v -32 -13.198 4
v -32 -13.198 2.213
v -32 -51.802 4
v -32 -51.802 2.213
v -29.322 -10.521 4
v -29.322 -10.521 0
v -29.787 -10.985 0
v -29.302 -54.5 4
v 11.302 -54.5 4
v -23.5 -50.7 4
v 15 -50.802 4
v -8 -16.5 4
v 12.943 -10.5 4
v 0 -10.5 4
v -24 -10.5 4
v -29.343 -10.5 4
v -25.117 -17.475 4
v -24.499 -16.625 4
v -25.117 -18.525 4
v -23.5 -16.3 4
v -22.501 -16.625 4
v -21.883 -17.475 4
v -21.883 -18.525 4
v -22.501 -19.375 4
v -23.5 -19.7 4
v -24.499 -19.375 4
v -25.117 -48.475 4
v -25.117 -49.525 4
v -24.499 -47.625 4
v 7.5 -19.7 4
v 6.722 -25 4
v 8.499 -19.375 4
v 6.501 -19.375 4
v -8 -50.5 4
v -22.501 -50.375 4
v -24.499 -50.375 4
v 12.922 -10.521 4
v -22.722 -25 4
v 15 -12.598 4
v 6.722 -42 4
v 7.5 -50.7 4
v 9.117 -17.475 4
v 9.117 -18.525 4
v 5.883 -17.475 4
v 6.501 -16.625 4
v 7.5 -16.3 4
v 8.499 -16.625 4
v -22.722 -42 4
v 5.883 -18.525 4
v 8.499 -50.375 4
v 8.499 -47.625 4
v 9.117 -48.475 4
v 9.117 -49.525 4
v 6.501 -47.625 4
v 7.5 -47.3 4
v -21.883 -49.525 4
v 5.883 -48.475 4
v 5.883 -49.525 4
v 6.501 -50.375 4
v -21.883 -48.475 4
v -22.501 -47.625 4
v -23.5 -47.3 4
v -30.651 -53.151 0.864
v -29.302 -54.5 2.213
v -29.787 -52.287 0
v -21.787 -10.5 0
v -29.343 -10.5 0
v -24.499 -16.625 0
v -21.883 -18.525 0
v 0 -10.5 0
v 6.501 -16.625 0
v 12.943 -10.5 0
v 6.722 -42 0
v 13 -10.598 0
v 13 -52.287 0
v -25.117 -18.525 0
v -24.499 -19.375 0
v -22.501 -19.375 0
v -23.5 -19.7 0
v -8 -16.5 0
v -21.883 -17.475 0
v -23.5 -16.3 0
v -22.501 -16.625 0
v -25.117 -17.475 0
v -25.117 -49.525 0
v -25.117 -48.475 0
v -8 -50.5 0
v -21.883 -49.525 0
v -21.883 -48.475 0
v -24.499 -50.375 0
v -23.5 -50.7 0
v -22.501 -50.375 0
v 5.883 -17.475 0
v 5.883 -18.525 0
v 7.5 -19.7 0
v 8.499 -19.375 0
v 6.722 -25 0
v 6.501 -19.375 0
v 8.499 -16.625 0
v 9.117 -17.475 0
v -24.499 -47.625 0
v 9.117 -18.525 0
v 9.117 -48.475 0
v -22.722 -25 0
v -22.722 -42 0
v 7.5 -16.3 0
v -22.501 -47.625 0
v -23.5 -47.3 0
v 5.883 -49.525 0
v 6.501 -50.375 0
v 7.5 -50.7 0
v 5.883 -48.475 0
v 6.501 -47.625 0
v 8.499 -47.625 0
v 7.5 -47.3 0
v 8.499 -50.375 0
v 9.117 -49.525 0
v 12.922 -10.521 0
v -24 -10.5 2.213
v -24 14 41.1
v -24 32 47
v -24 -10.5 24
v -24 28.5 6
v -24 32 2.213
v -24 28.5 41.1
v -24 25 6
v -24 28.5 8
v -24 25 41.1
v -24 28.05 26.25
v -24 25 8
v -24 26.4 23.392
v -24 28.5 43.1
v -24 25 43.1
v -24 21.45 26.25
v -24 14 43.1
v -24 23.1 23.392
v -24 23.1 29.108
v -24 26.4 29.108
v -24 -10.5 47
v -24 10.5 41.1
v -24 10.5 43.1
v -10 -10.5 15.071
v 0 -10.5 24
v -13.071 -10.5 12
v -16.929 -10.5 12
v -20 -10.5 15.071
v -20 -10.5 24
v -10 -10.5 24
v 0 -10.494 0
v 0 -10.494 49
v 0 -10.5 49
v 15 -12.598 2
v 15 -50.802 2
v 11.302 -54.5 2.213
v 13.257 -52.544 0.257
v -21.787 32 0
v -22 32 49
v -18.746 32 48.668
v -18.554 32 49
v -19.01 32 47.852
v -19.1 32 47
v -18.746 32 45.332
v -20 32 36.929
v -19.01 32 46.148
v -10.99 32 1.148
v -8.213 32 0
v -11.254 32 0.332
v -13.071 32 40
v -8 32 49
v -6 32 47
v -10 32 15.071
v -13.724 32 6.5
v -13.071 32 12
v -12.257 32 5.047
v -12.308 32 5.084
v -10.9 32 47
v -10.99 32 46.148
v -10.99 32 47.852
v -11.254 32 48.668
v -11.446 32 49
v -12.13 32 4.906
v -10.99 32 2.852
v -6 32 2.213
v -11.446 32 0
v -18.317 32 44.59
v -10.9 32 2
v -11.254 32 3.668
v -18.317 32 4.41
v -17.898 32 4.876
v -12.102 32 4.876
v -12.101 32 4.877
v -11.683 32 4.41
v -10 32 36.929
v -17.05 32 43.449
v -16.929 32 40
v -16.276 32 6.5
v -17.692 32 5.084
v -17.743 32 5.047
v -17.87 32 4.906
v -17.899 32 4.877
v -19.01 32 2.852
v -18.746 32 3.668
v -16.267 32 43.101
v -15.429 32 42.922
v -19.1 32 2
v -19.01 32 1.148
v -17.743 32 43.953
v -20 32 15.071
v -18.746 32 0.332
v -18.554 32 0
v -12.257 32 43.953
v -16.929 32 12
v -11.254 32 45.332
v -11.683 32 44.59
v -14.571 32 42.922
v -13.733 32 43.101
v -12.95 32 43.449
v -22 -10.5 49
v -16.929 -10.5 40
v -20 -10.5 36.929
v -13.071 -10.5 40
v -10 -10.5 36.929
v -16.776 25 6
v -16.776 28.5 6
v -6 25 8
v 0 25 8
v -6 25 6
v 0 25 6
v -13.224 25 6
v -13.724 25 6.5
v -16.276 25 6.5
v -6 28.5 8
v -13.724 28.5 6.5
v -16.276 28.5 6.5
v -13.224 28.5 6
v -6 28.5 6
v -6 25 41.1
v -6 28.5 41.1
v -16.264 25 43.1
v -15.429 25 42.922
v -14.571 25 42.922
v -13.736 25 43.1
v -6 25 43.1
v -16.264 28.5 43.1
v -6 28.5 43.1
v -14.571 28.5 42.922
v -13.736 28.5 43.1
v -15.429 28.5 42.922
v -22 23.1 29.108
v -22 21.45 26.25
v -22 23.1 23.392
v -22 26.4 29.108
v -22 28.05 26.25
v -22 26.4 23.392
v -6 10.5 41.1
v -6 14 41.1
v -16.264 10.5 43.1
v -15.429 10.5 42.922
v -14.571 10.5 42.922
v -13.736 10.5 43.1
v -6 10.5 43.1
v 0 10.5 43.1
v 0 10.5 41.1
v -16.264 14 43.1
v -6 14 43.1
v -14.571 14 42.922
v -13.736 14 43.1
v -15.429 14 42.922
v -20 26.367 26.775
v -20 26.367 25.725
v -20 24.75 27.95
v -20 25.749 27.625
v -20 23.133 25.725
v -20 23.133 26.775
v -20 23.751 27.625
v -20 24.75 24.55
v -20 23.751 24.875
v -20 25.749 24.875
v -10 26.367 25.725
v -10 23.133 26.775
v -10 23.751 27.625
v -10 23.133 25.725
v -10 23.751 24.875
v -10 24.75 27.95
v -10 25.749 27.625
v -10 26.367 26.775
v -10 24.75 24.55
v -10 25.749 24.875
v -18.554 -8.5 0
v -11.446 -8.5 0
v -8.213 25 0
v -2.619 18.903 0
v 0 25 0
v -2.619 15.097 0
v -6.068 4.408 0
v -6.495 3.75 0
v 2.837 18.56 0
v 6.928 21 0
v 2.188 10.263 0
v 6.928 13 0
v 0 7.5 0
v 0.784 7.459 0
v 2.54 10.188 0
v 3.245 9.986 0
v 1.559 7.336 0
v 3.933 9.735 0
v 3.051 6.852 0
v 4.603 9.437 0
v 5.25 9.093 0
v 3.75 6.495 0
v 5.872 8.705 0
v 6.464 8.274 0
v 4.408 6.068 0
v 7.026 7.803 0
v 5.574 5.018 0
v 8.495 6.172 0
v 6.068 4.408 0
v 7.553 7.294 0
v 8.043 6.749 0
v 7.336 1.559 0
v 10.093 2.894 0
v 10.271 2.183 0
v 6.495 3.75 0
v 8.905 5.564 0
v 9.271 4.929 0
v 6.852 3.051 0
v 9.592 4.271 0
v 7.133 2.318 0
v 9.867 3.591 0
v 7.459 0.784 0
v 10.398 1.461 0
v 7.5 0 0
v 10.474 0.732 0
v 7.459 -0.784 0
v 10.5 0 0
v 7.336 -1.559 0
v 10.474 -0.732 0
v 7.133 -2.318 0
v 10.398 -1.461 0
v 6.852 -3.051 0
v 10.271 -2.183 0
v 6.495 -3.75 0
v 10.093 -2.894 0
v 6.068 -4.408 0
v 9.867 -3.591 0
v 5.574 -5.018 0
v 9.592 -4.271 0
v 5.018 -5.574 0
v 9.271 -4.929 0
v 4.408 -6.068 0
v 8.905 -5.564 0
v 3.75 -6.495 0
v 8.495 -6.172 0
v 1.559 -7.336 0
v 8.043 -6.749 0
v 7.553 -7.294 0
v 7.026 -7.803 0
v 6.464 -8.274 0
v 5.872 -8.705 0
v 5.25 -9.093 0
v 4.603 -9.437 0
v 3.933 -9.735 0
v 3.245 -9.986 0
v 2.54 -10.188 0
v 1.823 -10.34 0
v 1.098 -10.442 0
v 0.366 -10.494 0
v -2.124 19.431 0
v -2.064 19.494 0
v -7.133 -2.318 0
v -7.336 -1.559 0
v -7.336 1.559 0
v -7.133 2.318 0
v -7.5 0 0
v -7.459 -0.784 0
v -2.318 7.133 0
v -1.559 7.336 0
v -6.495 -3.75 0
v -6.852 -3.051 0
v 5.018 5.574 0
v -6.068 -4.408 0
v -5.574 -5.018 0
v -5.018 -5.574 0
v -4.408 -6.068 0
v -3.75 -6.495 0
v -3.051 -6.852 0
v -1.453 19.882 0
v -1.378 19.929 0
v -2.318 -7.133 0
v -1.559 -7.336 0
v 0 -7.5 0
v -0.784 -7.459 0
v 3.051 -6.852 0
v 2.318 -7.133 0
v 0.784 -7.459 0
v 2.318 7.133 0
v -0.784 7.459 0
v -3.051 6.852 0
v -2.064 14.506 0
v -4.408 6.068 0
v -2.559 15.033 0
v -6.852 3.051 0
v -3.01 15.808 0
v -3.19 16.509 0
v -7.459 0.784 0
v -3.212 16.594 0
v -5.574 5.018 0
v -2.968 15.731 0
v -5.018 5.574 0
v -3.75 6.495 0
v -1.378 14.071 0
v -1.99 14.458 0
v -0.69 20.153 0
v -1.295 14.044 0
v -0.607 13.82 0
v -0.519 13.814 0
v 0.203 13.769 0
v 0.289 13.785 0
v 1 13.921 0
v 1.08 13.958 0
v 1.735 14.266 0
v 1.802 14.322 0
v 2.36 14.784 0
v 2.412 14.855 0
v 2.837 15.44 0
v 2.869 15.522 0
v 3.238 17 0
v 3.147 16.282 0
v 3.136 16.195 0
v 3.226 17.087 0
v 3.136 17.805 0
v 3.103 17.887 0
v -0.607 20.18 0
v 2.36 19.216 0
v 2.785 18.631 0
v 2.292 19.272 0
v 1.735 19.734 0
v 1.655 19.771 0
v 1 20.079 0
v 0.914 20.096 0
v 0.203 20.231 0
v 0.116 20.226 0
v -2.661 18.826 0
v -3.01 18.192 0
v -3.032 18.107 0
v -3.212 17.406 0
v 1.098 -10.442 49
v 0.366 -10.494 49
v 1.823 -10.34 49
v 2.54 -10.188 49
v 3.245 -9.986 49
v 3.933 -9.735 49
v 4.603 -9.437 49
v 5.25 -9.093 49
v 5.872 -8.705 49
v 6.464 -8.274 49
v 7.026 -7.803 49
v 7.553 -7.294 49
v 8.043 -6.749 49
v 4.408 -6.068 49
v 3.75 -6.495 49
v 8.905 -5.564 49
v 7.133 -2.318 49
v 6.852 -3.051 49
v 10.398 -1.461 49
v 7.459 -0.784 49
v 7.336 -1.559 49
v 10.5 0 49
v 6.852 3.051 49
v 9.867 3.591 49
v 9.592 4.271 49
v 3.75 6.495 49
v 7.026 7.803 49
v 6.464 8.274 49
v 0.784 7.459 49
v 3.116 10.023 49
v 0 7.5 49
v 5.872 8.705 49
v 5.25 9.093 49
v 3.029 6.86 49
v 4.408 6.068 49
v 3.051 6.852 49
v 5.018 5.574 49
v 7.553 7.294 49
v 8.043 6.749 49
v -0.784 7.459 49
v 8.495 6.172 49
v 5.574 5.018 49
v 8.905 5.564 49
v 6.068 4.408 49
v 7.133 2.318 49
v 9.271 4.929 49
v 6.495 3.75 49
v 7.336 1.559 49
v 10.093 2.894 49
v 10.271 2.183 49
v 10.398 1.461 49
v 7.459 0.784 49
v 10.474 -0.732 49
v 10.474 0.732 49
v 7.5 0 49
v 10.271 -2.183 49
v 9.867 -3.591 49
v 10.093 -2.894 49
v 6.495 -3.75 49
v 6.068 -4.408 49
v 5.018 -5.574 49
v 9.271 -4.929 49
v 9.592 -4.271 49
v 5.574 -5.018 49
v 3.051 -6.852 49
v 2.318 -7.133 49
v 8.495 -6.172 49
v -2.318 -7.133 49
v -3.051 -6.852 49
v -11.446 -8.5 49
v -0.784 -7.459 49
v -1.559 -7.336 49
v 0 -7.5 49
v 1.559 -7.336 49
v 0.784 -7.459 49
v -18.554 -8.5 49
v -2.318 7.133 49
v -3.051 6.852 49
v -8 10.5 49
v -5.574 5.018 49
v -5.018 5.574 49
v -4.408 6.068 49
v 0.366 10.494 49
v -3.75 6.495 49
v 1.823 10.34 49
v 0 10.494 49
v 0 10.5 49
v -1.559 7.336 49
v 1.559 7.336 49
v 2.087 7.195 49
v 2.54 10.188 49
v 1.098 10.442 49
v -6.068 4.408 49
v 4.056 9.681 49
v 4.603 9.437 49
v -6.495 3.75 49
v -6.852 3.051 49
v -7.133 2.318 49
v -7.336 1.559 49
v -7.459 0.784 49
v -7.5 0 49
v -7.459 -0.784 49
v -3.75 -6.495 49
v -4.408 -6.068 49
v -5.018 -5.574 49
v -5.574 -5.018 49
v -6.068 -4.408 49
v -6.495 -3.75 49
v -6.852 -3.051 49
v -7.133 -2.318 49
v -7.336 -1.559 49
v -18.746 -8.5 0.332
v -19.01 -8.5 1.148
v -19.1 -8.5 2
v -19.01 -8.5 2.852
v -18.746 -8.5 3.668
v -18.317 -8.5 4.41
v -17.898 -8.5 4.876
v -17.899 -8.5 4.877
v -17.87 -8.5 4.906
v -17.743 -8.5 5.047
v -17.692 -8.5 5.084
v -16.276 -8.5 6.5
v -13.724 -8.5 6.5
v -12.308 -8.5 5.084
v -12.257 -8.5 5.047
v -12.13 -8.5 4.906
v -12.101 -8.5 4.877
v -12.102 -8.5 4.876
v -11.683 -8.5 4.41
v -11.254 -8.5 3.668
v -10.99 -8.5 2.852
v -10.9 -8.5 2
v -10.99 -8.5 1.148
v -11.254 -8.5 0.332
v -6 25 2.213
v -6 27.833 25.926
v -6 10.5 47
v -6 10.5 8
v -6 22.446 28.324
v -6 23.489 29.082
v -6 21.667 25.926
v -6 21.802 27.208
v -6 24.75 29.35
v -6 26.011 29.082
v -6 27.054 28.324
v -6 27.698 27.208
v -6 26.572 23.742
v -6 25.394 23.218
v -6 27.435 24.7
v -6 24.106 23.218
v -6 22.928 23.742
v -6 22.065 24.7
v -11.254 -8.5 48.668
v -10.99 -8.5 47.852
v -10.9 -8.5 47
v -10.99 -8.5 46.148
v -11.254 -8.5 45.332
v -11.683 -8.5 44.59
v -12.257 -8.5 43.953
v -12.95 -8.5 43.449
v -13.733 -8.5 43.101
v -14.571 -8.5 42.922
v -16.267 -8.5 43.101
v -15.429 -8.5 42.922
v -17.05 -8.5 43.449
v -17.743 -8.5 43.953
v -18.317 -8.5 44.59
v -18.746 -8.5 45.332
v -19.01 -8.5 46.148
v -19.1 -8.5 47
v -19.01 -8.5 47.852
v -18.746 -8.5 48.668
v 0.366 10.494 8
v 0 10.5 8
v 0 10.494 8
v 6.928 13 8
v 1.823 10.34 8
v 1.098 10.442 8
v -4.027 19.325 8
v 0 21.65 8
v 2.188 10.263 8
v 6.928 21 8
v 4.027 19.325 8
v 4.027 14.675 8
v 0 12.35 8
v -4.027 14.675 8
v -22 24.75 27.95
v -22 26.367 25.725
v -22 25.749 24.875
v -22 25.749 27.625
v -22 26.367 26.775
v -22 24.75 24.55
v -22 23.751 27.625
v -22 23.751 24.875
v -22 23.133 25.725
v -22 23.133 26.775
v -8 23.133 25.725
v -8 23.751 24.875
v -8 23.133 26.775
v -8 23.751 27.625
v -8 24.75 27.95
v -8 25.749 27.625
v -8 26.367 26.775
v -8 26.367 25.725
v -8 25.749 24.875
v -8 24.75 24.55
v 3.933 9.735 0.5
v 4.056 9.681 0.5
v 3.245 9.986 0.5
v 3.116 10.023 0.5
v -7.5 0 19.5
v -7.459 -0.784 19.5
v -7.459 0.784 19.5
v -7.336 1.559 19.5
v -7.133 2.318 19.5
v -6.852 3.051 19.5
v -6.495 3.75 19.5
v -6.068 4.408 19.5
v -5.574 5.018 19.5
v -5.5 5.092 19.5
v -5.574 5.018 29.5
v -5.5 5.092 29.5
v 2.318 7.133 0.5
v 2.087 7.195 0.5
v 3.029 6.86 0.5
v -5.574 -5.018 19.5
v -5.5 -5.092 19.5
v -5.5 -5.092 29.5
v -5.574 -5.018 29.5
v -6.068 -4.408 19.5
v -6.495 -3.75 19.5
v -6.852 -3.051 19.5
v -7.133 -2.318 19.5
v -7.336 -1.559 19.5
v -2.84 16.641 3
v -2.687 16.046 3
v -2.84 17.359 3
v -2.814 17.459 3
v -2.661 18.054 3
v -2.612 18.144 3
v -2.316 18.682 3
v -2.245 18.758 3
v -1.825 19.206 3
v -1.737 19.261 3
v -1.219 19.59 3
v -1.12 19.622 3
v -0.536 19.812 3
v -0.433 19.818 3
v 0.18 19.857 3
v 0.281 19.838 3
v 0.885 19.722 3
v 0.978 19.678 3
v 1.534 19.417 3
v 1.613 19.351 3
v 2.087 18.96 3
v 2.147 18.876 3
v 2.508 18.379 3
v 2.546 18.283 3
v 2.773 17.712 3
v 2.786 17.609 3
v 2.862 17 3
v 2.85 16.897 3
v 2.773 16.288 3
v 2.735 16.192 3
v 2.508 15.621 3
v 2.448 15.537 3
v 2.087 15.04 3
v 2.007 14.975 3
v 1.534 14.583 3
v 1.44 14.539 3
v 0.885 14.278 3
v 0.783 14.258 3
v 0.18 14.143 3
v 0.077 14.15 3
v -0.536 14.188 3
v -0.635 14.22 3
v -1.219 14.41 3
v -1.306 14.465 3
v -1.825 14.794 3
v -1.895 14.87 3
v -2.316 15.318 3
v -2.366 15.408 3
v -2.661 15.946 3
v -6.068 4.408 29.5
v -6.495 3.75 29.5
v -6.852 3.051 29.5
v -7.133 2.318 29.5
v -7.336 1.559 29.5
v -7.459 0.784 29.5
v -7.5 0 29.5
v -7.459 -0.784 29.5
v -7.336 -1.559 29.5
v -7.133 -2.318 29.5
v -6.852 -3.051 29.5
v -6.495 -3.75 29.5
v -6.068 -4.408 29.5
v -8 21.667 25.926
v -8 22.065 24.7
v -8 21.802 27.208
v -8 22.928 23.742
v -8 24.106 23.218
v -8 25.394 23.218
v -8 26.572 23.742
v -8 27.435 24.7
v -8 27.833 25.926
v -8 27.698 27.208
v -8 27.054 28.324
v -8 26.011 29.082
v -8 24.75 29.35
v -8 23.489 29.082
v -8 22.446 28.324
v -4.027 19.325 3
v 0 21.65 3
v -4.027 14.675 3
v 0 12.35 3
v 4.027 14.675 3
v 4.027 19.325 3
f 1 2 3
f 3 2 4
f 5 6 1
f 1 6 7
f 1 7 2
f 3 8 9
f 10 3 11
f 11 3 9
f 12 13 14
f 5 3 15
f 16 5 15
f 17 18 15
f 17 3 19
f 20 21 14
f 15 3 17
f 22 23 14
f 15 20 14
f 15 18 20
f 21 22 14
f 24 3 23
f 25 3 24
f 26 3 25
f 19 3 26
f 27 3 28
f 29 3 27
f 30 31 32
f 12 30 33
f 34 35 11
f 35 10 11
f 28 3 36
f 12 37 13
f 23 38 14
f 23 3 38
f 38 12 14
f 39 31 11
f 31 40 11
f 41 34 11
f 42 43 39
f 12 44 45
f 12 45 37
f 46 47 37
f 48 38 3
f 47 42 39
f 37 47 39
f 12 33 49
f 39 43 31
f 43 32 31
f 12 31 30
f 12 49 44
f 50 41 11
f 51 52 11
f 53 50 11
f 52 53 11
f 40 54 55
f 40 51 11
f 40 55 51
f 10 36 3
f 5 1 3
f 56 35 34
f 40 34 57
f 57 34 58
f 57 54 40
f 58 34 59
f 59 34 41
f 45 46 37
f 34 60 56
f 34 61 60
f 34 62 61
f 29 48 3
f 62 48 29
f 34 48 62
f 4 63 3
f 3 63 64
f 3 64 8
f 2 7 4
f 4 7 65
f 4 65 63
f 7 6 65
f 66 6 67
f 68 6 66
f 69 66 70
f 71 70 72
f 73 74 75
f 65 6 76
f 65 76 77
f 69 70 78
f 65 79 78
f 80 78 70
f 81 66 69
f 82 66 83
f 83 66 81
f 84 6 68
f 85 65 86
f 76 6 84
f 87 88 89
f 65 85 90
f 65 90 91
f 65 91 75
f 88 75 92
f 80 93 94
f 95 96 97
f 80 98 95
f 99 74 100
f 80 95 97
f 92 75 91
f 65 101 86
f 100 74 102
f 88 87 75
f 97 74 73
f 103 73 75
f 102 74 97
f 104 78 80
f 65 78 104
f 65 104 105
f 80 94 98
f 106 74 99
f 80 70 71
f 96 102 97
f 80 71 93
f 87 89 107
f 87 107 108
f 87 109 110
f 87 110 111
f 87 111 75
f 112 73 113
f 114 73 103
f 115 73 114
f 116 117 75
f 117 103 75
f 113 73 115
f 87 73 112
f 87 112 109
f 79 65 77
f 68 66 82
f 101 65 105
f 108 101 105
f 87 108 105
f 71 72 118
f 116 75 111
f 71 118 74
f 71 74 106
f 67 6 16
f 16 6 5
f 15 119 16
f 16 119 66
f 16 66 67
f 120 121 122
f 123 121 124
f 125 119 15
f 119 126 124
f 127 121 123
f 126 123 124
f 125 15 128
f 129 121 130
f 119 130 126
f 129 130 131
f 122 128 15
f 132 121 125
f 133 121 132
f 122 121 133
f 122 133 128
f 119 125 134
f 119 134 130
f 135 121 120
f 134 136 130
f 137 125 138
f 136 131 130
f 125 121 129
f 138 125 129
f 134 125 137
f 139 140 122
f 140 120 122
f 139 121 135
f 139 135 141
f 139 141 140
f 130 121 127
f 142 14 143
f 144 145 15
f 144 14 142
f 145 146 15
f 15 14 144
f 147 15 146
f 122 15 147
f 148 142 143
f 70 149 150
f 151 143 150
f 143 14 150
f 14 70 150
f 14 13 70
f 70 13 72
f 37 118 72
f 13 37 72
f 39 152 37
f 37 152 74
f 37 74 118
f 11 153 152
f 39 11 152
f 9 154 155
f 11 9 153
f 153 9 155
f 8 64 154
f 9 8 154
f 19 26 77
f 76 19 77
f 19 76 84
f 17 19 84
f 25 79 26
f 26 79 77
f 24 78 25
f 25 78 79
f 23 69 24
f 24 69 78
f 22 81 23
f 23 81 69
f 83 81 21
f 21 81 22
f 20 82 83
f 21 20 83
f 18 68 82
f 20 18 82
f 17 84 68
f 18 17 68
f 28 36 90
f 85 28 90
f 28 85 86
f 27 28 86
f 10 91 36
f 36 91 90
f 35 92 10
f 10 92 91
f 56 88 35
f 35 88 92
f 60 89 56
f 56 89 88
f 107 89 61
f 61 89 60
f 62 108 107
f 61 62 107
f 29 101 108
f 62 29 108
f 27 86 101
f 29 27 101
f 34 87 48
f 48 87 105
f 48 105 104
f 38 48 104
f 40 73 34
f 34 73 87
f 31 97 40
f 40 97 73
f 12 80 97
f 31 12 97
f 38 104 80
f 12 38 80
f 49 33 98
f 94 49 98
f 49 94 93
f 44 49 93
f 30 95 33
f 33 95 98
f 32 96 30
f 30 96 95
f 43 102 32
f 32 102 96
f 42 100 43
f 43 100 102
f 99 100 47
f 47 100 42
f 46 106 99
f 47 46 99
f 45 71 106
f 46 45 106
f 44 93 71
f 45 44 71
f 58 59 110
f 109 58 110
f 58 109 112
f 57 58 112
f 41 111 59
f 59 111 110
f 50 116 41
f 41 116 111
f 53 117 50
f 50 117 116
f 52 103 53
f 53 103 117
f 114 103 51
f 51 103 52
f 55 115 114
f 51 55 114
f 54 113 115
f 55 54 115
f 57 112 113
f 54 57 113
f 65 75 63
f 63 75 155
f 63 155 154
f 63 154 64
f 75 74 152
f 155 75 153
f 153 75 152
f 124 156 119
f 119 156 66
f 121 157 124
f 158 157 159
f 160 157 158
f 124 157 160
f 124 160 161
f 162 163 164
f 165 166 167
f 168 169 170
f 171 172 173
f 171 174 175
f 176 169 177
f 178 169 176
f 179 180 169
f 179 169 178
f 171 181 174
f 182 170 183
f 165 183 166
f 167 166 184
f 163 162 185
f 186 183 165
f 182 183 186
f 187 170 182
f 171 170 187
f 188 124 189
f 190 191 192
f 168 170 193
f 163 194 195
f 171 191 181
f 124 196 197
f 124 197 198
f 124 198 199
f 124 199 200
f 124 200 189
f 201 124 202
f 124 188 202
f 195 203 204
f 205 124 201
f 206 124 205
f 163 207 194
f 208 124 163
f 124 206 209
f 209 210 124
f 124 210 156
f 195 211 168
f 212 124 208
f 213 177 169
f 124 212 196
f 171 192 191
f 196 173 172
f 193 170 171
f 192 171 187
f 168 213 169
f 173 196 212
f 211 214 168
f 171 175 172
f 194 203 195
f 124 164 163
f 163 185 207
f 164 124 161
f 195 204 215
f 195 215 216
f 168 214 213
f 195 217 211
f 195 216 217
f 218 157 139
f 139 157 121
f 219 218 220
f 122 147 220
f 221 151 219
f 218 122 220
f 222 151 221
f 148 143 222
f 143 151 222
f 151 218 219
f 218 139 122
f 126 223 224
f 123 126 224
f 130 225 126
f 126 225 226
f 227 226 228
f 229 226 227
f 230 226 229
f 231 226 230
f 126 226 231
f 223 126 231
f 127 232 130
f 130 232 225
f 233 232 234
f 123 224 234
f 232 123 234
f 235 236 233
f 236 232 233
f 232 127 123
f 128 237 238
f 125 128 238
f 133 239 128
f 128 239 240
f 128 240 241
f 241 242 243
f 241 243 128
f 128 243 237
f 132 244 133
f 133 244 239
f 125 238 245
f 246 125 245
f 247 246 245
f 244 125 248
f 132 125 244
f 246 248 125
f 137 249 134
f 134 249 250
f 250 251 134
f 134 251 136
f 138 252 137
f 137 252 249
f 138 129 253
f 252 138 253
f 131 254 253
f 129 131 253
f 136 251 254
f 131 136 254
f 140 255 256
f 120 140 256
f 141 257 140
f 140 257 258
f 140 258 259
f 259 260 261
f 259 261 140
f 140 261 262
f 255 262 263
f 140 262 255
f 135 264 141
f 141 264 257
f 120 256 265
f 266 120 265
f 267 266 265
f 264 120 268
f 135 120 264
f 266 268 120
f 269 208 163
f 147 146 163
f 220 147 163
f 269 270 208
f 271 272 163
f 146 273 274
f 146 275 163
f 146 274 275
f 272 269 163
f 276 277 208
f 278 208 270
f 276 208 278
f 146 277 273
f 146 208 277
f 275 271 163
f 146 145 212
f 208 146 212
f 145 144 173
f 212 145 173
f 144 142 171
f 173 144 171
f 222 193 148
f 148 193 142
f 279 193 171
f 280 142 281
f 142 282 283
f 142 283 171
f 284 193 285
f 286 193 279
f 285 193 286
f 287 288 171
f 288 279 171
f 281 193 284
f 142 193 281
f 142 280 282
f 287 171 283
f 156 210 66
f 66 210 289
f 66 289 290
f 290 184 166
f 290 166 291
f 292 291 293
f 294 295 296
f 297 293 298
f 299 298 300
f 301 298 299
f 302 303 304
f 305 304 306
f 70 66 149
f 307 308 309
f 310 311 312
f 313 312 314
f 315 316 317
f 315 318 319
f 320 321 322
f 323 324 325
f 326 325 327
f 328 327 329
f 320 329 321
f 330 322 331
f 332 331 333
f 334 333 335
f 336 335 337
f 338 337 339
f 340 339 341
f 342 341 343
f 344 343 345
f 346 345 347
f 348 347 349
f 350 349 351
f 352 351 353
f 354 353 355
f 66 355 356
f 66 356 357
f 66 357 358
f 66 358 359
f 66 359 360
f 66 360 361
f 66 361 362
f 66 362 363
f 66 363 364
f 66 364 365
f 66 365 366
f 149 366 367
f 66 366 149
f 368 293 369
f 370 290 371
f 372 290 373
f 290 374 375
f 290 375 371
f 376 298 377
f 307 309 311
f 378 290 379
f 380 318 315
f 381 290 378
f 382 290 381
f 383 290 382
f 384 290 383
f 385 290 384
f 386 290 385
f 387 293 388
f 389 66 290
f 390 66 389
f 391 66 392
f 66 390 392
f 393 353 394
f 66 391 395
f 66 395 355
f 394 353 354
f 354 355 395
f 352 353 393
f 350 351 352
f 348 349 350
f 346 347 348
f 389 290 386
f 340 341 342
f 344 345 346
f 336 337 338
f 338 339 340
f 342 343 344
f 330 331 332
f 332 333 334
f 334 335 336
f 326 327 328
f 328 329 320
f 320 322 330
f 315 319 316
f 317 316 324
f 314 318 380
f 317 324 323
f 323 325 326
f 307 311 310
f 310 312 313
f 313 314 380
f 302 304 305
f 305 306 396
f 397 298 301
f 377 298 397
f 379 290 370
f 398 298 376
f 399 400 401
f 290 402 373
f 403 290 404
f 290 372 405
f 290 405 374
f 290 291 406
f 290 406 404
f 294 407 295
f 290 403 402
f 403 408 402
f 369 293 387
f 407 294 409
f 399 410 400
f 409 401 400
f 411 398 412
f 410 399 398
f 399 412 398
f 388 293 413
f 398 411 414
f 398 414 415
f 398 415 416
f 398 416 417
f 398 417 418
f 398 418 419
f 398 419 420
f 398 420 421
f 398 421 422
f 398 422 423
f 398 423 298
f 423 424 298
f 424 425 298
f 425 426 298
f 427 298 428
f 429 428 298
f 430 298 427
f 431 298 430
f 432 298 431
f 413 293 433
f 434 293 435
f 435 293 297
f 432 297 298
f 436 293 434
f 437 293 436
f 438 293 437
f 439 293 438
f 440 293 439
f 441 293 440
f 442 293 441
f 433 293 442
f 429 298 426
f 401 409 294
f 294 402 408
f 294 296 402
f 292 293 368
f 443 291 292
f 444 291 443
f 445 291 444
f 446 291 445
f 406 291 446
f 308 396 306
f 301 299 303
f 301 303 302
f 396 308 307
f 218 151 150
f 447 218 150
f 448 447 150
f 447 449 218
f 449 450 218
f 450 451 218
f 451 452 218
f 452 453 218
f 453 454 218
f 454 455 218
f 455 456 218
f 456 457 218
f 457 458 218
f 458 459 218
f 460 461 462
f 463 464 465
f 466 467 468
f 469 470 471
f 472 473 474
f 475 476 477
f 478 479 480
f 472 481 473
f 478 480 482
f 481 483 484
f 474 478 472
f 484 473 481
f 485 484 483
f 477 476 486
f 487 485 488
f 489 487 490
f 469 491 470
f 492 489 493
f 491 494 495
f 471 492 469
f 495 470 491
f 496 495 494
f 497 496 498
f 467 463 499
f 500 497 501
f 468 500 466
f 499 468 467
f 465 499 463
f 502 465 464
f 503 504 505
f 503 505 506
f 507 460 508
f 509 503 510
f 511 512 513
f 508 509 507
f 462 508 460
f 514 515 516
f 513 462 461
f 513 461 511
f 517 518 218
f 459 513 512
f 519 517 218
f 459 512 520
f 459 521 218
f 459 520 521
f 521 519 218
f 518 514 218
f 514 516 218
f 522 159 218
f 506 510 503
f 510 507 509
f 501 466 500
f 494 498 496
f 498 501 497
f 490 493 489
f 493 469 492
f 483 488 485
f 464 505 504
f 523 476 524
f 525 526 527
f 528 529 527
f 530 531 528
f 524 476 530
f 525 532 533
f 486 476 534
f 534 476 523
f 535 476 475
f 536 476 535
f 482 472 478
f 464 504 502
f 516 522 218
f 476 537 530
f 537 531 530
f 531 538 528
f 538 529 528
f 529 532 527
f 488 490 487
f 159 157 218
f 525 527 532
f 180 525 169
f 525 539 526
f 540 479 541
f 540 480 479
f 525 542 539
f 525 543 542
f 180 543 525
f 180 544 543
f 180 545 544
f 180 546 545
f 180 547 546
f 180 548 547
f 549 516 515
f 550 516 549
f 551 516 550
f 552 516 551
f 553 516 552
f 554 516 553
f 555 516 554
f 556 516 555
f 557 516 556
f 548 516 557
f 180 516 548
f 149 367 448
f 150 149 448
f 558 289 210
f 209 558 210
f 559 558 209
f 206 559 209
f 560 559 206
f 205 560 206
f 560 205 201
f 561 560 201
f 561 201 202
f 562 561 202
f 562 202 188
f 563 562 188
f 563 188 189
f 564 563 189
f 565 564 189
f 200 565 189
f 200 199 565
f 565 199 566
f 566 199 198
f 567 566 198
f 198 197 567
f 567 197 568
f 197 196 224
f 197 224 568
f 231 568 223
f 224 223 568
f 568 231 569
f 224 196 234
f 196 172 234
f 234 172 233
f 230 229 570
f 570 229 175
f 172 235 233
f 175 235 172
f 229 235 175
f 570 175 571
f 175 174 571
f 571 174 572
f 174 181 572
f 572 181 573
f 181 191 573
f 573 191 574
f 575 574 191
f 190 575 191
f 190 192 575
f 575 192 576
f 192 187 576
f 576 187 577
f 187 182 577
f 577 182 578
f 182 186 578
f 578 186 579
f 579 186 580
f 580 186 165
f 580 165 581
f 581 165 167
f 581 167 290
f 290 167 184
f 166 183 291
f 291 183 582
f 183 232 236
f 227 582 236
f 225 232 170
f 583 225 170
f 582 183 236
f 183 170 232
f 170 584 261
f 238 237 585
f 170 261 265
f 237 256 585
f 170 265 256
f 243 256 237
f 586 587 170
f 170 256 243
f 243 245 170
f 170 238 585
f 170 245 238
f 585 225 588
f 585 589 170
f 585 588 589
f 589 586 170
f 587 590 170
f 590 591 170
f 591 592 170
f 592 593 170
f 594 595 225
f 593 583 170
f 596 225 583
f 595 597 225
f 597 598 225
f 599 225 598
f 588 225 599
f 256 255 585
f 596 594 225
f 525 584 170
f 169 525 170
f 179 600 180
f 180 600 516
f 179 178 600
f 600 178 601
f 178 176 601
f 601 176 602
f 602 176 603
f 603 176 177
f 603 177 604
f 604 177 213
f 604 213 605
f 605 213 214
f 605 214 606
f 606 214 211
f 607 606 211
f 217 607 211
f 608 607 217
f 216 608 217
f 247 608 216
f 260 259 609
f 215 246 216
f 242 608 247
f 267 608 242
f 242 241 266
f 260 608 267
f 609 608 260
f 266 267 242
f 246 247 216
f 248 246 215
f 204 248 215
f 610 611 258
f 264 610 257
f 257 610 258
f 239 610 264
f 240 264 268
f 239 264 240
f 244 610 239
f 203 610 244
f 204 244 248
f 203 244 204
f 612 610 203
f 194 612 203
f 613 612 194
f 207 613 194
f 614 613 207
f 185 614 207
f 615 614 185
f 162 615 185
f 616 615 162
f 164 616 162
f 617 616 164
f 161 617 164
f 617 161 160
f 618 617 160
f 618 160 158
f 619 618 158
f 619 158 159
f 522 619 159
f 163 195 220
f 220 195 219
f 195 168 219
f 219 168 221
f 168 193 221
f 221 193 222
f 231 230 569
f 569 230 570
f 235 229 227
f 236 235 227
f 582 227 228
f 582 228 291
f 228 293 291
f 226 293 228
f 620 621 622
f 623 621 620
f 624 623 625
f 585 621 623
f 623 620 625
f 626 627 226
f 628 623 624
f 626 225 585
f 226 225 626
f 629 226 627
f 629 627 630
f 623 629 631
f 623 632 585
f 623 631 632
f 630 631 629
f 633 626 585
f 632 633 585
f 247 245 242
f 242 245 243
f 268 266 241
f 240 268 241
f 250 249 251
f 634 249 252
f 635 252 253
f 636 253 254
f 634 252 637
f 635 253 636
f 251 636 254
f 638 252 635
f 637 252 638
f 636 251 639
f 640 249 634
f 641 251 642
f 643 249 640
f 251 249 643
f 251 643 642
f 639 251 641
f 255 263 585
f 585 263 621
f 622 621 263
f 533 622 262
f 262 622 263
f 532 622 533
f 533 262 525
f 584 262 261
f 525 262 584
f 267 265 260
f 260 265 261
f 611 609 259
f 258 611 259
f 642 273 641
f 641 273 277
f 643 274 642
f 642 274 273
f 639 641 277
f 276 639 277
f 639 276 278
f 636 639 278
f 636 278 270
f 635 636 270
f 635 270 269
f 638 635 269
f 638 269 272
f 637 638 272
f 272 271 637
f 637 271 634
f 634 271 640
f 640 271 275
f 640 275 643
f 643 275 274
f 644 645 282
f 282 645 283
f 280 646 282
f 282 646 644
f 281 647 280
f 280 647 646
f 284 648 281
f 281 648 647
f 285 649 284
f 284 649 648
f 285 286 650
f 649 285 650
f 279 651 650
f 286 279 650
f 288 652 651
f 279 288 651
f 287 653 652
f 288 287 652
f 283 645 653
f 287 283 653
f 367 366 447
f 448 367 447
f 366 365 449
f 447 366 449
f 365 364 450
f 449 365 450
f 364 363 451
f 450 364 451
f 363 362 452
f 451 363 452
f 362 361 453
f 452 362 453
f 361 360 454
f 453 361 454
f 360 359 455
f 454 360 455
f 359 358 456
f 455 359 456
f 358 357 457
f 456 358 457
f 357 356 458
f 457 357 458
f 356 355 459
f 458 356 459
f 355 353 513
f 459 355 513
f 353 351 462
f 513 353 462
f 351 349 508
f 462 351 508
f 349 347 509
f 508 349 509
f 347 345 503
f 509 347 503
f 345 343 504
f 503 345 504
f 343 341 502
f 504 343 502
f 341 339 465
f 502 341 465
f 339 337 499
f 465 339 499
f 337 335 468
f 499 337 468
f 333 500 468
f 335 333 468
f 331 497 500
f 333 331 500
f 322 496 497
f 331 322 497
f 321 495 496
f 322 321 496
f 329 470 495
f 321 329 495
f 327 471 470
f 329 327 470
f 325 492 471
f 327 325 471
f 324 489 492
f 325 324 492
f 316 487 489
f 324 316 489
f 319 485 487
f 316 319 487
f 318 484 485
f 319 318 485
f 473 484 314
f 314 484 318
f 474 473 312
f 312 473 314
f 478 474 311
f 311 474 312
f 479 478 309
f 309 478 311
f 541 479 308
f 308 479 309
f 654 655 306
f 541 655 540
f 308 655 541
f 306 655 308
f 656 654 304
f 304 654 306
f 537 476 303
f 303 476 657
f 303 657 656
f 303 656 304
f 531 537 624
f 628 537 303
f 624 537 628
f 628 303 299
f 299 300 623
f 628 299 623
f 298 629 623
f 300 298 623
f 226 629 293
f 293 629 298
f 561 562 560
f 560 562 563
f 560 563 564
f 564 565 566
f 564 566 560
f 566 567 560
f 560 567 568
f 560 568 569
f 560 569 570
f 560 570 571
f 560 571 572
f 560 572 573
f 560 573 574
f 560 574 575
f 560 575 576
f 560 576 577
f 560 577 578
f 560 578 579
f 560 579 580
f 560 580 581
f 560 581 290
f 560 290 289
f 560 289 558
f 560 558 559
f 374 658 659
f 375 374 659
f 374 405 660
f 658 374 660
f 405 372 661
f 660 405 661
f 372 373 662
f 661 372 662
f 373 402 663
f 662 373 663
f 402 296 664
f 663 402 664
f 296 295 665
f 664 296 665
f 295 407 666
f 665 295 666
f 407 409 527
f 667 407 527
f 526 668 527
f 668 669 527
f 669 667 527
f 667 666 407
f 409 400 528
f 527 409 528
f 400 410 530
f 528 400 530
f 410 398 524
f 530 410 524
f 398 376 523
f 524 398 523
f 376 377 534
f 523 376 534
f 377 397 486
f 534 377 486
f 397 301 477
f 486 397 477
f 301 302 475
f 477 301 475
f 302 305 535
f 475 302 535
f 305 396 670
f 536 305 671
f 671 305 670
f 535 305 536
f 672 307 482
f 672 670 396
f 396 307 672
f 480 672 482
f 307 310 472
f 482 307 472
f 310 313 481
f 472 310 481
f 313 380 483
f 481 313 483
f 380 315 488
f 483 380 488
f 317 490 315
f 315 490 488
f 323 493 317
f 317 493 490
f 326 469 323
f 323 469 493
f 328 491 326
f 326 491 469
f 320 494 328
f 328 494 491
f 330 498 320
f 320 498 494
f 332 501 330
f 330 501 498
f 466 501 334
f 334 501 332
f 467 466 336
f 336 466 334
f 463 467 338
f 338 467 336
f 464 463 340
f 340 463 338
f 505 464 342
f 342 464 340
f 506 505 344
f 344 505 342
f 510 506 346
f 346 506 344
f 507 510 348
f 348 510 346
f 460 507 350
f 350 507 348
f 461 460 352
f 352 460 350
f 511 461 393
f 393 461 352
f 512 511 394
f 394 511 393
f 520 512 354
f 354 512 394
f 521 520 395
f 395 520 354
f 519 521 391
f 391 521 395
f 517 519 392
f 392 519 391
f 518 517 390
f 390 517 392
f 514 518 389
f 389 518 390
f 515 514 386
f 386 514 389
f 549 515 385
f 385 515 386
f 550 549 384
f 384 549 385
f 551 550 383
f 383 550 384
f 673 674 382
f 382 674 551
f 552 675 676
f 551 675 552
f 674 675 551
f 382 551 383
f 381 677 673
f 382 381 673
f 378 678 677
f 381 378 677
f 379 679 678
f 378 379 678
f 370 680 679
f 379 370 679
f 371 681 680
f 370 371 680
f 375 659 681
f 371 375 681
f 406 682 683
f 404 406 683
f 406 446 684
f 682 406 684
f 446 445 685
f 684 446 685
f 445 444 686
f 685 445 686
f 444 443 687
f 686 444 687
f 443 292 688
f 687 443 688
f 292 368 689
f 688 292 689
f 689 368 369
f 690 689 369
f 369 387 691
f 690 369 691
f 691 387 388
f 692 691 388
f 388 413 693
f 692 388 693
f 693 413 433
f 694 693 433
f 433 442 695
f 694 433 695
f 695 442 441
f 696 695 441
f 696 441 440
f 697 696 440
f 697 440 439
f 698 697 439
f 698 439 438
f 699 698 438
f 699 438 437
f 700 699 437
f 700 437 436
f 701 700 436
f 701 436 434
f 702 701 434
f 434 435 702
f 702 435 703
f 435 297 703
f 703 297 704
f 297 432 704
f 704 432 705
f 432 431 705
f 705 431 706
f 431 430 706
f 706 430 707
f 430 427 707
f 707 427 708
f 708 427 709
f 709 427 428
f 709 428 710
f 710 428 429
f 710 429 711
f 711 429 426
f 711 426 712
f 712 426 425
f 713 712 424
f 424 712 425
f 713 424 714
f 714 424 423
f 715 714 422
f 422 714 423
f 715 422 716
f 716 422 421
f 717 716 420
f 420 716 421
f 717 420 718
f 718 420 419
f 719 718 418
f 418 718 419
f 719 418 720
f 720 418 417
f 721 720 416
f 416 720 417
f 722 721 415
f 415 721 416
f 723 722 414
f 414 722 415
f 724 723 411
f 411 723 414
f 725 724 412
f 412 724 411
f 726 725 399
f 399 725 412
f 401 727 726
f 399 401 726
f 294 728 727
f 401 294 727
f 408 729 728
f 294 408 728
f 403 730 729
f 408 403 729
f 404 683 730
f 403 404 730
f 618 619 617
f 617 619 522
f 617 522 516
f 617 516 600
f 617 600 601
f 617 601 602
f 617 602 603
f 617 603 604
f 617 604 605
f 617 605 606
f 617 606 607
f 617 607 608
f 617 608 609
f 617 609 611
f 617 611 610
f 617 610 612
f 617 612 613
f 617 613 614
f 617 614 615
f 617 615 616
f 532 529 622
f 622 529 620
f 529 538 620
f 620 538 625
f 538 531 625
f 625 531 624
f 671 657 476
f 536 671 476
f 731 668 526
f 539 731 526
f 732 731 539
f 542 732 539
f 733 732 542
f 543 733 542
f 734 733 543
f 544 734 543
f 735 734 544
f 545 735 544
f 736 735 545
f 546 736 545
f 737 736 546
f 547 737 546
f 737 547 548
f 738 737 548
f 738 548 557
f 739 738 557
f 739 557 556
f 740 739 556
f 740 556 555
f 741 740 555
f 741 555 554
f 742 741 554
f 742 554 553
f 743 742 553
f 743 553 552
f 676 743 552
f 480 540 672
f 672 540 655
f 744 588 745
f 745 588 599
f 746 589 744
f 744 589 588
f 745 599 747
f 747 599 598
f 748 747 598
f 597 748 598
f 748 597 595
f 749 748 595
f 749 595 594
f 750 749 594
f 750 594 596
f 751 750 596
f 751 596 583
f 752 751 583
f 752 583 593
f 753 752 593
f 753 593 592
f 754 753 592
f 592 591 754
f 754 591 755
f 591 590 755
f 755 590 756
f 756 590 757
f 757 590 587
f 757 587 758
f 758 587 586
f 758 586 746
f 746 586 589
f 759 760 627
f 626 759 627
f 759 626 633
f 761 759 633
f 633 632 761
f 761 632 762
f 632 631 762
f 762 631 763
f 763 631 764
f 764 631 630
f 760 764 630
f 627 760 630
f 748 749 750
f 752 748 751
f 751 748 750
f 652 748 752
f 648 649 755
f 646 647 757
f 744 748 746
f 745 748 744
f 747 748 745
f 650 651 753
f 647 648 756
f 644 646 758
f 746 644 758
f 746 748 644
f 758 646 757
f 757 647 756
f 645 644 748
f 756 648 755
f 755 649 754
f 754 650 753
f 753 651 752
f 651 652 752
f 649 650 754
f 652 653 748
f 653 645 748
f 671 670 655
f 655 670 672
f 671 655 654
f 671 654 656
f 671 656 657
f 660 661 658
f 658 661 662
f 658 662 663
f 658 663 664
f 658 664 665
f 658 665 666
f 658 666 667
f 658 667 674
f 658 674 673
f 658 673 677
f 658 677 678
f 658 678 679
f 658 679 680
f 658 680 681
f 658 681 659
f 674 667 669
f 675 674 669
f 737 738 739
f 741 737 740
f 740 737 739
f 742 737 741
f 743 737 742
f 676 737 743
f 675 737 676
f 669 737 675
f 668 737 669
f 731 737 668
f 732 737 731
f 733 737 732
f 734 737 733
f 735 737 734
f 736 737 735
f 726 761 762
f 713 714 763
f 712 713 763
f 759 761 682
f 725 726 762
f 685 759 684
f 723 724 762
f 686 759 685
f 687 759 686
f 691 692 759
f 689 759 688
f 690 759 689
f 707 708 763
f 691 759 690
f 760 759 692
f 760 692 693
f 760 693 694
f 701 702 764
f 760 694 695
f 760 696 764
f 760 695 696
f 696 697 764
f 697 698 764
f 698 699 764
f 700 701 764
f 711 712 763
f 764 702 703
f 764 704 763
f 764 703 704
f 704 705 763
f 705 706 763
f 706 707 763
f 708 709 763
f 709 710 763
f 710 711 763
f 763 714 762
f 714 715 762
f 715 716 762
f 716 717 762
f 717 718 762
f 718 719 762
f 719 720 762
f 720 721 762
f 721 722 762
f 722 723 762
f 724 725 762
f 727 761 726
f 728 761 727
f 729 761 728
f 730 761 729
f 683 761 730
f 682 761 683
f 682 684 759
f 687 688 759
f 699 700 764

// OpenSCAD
// file: inc/bearing.scad
// PRUSA iteration3
// Bearing holders
// GNU GPL v3
// Josef Průša <iam@josefprusa.cz> and contributors
// http://www.reprap.org/wiki/Prusa_Mendel
// http://prusamendel.org

bearing_diameter = 15;

module horizontal_bearing_base(bearings=1) {
  translate(v=[0,0,6]) cube(size = [24,8+bearings*25,12], center = true);
}

module horizontal_bearing_holes(bearings=1) {
  cutter_lenght = 10+bearings*25;
  one_holder_lenght = 8+25;
  holder_lenght = 8+bearings*25;

  // Main bearing cut
  difference() {
    translate(v = [0,0,12]) rotate(a = [90,0,0]) translate(v = [0,0,-cutter_lenght/2]) cylinder(h = cutter_lenght, r = bearing_diameter/2, $fn = 50);
    // Bearing retainers
    translate(v=[0,1-holder_lenght/2,3]) cube(size = [24,6,8], center = true);
    translate(v=[0,-1+holder_lenght/2,3]) cube(size = [24,6,8], center = true);
  }

  // Ziptie cutouts
  ziptie_cut_ofset = 0;

  for (i = [0:bearings-1]) {
    // For easier positioning I move them by half of one
    // bearing holder then add each bearign lenght and then center again
    translate(v = [0,-holder_lenght/2,0]) translate(v = [0,one_holder_lenght/2+i*25,0]) difference(){
      union(){
        translate(v = [0,2-6,12]) rotate(a = [90,0,0]) translate(v = [0,0,0]) cylinder(h = 4, r = 12.5, $fn = 50);
        translate(v = [0,2+6,12]) rotate(a = [90,0,0]) translate(v = [0,0,0]) cylinder(h = 4, r = 12.5, $fn = 50);
      }
      translate(v = [0,10,12]) rotate(a = [90,0,0]) translate(v = [0,0,0]) cylinder(h = 24, r = 10, $fn = 50);
    }
  }
}

module horizontal_bearing_test() {
  difference(){
    horizontal_bearing_base(1);
    horizontal_bearing_holes(1);
  }
  translate(v=[30,0,0]) difference(){
    horizontal_bearing_base(2);
    horizontal_bearing_holes(2);
  }
  translate(v=[60,0,0]) difference(){
    horizontal_bearing_base(3);
    horizontal_bearing_holes(3);
  }
}

thinwall = 3;
bearing_size = bearing_diameter + 2 * thinwall;

module vertical_bearing_base(height) {
  translate(v = [-2-bearing_size/4,0,height/2]) cube(size = [4+bearing_size/2,bearing_size,height], center = true);
  cylinder(h = height, r=bearing_size/2, $fn = 90);
}

module vertical_bearing_holes(height) {
  difference() {
    translate(v = [0,0,-1]) cylinder(h = height+2, r = bearing_diameter/2, $fn = 60);
    translate(v = [-bearing_diameter/2,0,height/2]) cube([4,bearing_diameter+2,10], center = true);
  }
  rotate(a = [0,0,-70]) translate(v = [8,0,31.5]) cube(size = [5,1,62], center = true);
}

difference() {
  vertical_bearing_base(58);
  vertical_bearing_holes(58);
}
// file: inc/x-end.scad
// PRUSA iteration3
// X end prototype
// GNU GPL v3
// Josef Průša <iam@josefprusa.cz> and contributors
// http://www.reprap.org/wiki/Prusa_Mendel
// http://prusamendel.org

use <bearing.scad>
rod_distance = 45;
m5_tolerance = 0.3;

module x_end_base() {
  // Main block
  height = 49;

  difference() {
    translate(v = [-15,-9-3.5/2,height/2]) cube(size = [18,39+3.5,height], center = true);
    // Top corners cutouts
    translate([-15+7,-20,51-2]) rotate([0,45,0]) translate([-15,-15,0]) cube([30,60,30]);
    translate([-15-18+11,-20,51-2]) rotate([0,-45,0]) translate([-15,-15,0]) cube([30,60,30]);
    // Bottom corners cutout
    translate([-15+7,-20,-19-2]) rotate([0,45,0]) translate([-15,-15,0]) cube([30,60,30]);
    translate([-15-18+11,-20,-19-2]) rotate([0,-45,0]) translate([-15,-15,0]) cube([30,60,30]);
  }

  // Bearing holder
  vertical_bearing_base(49);

  // Nut trap
  // Cube
  translate(v = [-2-2-1,-17,4]) cube(size = [8+2,16,8], center = true);
  // Hexagon
  translate(v = [0,-17,0]) rotate([0,0,30]) cylinder(h = 8, r = 8, $fn = 6);
}

module x_end_holes() {
  vertical_bearing_holes(49);

  // Belt hole
  translate(v = [-1,0,-4])

  difference() {
    translate(v = [-5.5-10+1.5,-10,30]) cube(size = [10,46,28], center = true);

  	// Nice edges
  	translate(v = [-5.5-10+1.5,-10,30+23]) rotate([0,45,0]) cube(size = [10,46,28], center = true);
  	translate(v = [-5.5-10+1.5,-10,30+23]) rotate([0,-45,0]) cube(size = [10,46,28], center = true);
  	translate(v = [-5.5-10+1.5,-10,30-23]) rotate([0,45,0]) cube(size = [10,46,28], center = true);
  	translate(v = [-5.5-10+1.5,-10,30-23]) rotate([0,-45,0]) cube(size = [10,46,28], center = true);
}

  // Bottom pushfit rod
  translate(v = [-15,-41.5,2]) rotate(a = [-90,0,0]) pushfit_rod(8.2,50);

  // Top pushfit rod
  translate(v = [-15,-41.5,rod_distance+2]) rotate(a = [-90,0,0]) pushfit_rod(8.2,50);

  // Ziptie
  translate([-30,-28.5,6]) cube([30,3.5,2]);
  translate([-30,-28.5,49-6-1.9]) cube([30,3.5,2]);
  translate([-30,-14,49-6-1.9]) cube([30,3.5,2]);

  // Nut trap
  translate(v = [0,-17,-0.5]) cylinder(h = 4, r1 = 3.3, r2 = 2.8, $fn = 25);
  translate(v = [0,-17,3]) rotate([0,0,30]) cylinder(h = 10, r=4.5+m5_tolerance/2, $fn = 6);
}

// Final prototype
module x_end_plain() {
  difference() {
    x_end_base();
    x_end_holes();
  }
}

x_end_plain();

module pushfit_rod(diameter,length) {
  cylinder(h = length, r = diameter/2, $fn = 30);
  difference() {
 	  translate(v = [0,-diameter/2.85,length/2]) rotate([0,0,45]) cube(size = [diameter/2,diameter/2,length], center = true);
 	  translate(v = [0,-diameter/4-diameter/2-0.4,length/2]) rotate([0,0,0]) cube(size = [diameter,diameter/2,length], center = true);
  }
  //translate(v=[0,-diameter/2-2,length/2]) cube(size = [diameter,1,length], center = true);
}
// main file
// PRUSA iteration3
// X end motor
// GNU GPL v3
// Josef Průša <iam@josefprusa.cz> and contributors
// http://www.reprap.org/wiki/Prusa_Mendel
// http://prusamendel.org

use <inc/x-end.scad>

module x_end_motor_base() {
  x_end_base();
	translate([-34,1.5,-6])
   rotate([0,90,0])
    difference() {
    translate(v = [-15,31,26.5-1]) cube(size = [18,44,47], center = true);
    translate([-15+7,0,51-2]) rotate([0,45,0]) translate([-15,-15,0]) cube([30,70,30]);
    translate([-15-18+11,0,51-2]) rotate([0,-45,0]) translate([-15,-15,0]) cube([30,70,30]);
    // Bottom corners cutout
    translate([-15+7,10,-19-0]) rotate([0,45,0]) translate([-15,-15,0]) cube([30,60,30]);
    translate([-15-18+11,10,-19-0]) rotate([0,-45,0]) translate([-15,-15,0]) cube([30,60,30]);
    translate([-15+7,74,10]) rotate([90,0,45]) translate([-15,-15,0]) cube([30,70,30]);
  }
}

module x_end_motor_holes() {
  x_end_holes();

  // Position to place
	translate([-34,1.5,-6])
  rotate([0,90,0])
    translate(v = [-1,32,30.25-4.25]) {
    // Belt hole
    translate(v = [-14,1,0]) cube(size = [10,46,22], center = true);
	mirror([0,0,1])
	{
    // Motor mounting holes
    translate(v = [20,-15.5,-15.5]) rotate(a = [0,-90,0]) rotate(a = [0,0,90]) cylinder(h = 70, r = 1.7, $fn = 10);
    //translate(v = [3,-15.5,-15.5]) rotate(a = [0,-90,0]) rotate(a = [0,0,90]) cylinder(h = 10, r = 3.1, $fn = 15);

    translate(v = [20,-15.5,15.5]) rotate(a = [0,-90,0]) rotate(a = [0,0,90]) cylinder(h = 70, r = 1.7, $fn = 10);
    //translate(v = [3,-15.5,15.5]) rotate(a = [0,-90,0]) rotate(a = [0,0,90]) cylinder(h = 10, r = 3.1, $fn = 15);
	
    translate(v = [20,15.5,-15.5]) rotate(a = [0,-90,0]) rotate(a = [0,0,90]) cylinder(h = 70, r = 1.7, $fn = 10);
    //translate(v = [3-10,15.5,-15.5]) rotate(a = [0,-90,0]) rotate(a = [0,0,90]) cylinder(h = 10, r = 3.1, $fn = 15);
    //translate(v = [3-10-2-3,15.5,-15.5+3.1]) cube([10,3.1*2,3.1*2], center = true);

    translate(v=[20,15.5,15.5]) rotate(a=[0,-90,0]) rotate(a=[0,0,90]) cylinder(h = 70, r=1.7, $fn=10);
    //translate(v=[3.5,15.5,15.5]) rotate(a=[0,-90,0]) rotate(a=[0,0,90]) cylinder(h = 10, r=3.1, $fn=15);

    // Material saving cutout
    //translate(v = [-10,12,10]) cube(size = [60,42,42], center = true);

    // Material saving cutout
    translate(v = [-10,40,-30]) rotate(a = [45,0,0])  cube(size = [60,42,42], center = true);
    translate(v = [-10,40,32]) rotate(a = [45,0,0])  cube(size = [60,42,42], center = true);
    translate(v = [-10,-35,39]) rotate(a = [45,0,0])  cube(size = [60,8,42], center = true);
    translate(v = [-10,-35,-38.6]) rotate(a = [135,0,0])  cube(size = [60,8,42], center = true);
	
    // Motor shaft cutout
    translate(v = [0,0,0]) rotate(a = [0,-90,0]) rotate(a = [0,0,90]) cylinder(h = 70, r = 17, $fn = 6);

    //translate(v = [-25,-8.5,-30]) cube([30,30,20]);
    //translate([-15-2,-8.5,-19-7.75]) rotate([0,45,0]) cube([30,60,30]);
    //translate(v = [0,15,-4-3.9]) rotate(a = [0,-90+45,0]) rotate(a = [0,0,90]) cylinder(h = 70, r = 17, $fn = 6);
  }

}
}


module x_end_idler_holes() {
  x_end_holes();
  translate(v = [0,-23-3.5/2,30.25-4]) rotate(a = [0,-90,0]) cylinder(h = 80, r = 1.7, $fn = 10);
  translate(v = [2,-23-3.5/2,30.25-4]) rotate(a = [0,-90,0]) cylinder(h = 10, r = 3.1, $fn = 15);
  translate(v = [-22,-23-3.5/2,30.25-4]) rotate(a = [0,-90,0]) rotate(a = [0,0,30]) cylinder(h = 80, r = 3.3, $fn = 6);

//translate(v = [-30,27.9,8.4]) rotate([60,0,0]) cube([40,10,20]);
//translate(v = [-25,10.5,-1.6]) cube([40,20,20]);

	translate([-34,0,-6])
  rotate([0,90,0])
translate(v = [-30,10.5,0]) cube([20,80,80]);
}


// Final part
module x_end_motor() {
mirror([0,1,0])
  difference(){
    x_end_motor_base();
    x_end_motor_holes();
    x_end_idler_holes();
  }
}

x_end_motor();
